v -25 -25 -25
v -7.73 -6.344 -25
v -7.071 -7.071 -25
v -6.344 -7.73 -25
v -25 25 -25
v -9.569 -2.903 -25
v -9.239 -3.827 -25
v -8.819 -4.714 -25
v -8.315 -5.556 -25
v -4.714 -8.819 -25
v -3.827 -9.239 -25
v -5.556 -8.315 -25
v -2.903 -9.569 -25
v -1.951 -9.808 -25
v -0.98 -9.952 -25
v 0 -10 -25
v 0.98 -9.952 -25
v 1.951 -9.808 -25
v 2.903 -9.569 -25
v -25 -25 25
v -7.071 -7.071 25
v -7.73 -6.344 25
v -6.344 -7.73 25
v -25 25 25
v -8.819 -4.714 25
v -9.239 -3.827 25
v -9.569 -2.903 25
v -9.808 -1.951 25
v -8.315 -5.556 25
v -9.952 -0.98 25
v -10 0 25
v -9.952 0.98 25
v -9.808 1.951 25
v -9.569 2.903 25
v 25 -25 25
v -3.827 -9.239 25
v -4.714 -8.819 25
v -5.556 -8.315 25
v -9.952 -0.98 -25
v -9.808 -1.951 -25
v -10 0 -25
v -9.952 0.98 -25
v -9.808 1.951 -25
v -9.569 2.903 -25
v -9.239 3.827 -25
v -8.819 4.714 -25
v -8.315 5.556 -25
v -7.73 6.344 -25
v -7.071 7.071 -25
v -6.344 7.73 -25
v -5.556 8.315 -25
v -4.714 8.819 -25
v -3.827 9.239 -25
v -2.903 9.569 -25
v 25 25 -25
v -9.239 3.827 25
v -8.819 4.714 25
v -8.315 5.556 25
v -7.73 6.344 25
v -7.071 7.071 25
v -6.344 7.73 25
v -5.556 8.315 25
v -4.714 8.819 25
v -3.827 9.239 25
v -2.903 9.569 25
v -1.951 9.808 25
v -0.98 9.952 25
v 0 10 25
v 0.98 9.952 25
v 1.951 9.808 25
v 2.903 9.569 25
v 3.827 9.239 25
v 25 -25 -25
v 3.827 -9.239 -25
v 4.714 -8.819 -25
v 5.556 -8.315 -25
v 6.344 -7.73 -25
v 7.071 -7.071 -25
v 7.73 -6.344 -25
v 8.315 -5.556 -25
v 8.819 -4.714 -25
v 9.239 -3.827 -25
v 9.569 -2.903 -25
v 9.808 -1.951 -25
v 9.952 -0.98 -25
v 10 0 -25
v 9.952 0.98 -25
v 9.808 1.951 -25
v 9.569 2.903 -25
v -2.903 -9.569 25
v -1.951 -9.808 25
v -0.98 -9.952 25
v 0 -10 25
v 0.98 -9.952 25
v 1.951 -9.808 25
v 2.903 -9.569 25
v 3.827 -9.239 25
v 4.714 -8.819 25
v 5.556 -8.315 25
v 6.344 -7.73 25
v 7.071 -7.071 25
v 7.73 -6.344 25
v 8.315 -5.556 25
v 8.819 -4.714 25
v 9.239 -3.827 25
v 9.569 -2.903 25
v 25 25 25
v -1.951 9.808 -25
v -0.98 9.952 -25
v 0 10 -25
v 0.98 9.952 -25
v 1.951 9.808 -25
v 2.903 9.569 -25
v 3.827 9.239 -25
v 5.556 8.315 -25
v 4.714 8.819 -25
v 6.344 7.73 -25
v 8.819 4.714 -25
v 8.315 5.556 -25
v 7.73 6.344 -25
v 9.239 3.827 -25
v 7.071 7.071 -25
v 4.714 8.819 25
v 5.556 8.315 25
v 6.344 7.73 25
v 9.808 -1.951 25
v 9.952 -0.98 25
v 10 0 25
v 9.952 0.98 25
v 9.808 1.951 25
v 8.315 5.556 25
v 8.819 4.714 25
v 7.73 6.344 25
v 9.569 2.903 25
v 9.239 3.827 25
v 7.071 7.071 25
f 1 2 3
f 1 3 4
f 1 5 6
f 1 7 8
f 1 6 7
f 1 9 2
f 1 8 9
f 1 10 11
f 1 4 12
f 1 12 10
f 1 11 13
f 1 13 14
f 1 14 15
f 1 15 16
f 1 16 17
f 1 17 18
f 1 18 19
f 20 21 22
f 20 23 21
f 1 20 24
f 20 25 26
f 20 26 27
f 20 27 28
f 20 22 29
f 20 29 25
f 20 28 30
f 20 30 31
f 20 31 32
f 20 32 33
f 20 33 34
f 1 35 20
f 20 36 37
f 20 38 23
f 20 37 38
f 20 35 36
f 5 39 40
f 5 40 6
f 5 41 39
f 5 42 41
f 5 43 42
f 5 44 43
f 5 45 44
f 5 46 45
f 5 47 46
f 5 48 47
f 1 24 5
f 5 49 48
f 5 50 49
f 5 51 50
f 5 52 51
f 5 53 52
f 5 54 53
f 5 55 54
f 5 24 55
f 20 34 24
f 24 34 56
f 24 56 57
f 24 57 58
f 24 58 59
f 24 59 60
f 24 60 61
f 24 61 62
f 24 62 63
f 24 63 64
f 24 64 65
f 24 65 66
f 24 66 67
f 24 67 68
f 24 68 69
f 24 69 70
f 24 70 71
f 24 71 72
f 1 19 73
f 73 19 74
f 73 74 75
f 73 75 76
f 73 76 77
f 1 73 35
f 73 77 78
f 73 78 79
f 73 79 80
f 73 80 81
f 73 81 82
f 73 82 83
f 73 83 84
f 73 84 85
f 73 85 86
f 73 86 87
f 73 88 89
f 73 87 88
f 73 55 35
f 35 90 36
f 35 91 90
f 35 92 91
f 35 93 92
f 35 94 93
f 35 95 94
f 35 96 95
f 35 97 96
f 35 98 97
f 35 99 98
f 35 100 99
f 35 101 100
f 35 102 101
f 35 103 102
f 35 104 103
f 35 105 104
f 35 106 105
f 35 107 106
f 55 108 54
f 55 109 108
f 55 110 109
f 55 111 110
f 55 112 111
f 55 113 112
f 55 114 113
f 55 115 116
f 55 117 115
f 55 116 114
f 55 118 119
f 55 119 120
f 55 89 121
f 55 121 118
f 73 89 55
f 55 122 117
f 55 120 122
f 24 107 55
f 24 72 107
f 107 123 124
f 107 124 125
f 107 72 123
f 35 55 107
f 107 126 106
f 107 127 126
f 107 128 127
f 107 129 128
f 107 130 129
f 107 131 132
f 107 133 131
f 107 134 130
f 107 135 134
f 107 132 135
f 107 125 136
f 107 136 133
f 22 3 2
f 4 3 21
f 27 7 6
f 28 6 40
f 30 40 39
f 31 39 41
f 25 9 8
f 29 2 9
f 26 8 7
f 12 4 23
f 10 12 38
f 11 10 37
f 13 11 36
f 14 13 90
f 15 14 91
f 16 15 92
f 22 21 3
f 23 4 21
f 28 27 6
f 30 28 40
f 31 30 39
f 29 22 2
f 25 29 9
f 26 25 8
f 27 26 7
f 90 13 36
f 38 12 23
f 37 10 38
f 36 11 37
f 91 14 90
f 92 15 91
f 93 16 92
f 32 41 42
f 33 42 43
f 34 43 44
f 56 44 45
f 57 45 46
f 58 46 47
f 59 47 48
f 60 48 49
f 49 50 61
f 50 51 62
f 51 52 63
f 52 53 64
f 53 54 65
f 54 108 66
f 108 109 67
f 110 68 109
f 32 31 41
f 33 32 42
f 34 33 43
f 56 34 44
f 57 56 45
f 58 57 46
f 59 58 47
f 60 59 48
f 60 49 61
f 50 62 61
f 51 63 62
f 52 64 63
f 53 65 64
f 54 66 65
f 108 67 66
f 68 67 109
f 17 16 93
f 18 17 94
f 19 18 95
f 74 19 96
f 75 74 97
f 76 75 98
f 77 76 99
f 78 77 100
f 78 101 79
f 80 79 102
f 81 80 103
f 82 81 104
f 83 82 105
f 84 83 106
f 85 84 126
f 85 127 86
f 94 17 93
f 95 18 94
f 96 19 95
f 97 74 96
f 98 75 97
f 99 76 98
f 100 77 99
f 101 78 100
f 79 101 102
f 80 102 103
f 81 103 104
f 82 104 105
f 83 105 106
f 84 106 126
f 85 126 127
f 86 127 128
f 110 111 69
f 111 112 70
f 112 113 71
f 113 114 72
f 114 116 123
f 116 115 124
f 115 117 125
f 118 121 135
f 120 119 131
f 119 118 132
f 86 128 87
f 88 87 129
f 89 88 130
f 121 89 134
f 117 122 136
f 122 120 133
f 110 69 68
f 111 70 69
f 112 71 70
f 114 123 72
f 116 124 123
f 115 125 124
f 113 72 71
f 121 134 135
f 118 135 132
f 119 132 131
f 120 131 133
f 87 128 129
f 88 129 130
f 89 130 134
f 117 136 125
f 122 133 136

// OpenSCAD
// 50mm cube with a 20mm diameter through-hole along the Z-axis
difference() {
    // 50mm centered cube
    cube(50, center = true);

    // Through hole: cylinder larger than the cube height
    translate([0, 0, -25])   // extend below and above cube
        cylinder(d=20, h=100, $fn=64);
}
